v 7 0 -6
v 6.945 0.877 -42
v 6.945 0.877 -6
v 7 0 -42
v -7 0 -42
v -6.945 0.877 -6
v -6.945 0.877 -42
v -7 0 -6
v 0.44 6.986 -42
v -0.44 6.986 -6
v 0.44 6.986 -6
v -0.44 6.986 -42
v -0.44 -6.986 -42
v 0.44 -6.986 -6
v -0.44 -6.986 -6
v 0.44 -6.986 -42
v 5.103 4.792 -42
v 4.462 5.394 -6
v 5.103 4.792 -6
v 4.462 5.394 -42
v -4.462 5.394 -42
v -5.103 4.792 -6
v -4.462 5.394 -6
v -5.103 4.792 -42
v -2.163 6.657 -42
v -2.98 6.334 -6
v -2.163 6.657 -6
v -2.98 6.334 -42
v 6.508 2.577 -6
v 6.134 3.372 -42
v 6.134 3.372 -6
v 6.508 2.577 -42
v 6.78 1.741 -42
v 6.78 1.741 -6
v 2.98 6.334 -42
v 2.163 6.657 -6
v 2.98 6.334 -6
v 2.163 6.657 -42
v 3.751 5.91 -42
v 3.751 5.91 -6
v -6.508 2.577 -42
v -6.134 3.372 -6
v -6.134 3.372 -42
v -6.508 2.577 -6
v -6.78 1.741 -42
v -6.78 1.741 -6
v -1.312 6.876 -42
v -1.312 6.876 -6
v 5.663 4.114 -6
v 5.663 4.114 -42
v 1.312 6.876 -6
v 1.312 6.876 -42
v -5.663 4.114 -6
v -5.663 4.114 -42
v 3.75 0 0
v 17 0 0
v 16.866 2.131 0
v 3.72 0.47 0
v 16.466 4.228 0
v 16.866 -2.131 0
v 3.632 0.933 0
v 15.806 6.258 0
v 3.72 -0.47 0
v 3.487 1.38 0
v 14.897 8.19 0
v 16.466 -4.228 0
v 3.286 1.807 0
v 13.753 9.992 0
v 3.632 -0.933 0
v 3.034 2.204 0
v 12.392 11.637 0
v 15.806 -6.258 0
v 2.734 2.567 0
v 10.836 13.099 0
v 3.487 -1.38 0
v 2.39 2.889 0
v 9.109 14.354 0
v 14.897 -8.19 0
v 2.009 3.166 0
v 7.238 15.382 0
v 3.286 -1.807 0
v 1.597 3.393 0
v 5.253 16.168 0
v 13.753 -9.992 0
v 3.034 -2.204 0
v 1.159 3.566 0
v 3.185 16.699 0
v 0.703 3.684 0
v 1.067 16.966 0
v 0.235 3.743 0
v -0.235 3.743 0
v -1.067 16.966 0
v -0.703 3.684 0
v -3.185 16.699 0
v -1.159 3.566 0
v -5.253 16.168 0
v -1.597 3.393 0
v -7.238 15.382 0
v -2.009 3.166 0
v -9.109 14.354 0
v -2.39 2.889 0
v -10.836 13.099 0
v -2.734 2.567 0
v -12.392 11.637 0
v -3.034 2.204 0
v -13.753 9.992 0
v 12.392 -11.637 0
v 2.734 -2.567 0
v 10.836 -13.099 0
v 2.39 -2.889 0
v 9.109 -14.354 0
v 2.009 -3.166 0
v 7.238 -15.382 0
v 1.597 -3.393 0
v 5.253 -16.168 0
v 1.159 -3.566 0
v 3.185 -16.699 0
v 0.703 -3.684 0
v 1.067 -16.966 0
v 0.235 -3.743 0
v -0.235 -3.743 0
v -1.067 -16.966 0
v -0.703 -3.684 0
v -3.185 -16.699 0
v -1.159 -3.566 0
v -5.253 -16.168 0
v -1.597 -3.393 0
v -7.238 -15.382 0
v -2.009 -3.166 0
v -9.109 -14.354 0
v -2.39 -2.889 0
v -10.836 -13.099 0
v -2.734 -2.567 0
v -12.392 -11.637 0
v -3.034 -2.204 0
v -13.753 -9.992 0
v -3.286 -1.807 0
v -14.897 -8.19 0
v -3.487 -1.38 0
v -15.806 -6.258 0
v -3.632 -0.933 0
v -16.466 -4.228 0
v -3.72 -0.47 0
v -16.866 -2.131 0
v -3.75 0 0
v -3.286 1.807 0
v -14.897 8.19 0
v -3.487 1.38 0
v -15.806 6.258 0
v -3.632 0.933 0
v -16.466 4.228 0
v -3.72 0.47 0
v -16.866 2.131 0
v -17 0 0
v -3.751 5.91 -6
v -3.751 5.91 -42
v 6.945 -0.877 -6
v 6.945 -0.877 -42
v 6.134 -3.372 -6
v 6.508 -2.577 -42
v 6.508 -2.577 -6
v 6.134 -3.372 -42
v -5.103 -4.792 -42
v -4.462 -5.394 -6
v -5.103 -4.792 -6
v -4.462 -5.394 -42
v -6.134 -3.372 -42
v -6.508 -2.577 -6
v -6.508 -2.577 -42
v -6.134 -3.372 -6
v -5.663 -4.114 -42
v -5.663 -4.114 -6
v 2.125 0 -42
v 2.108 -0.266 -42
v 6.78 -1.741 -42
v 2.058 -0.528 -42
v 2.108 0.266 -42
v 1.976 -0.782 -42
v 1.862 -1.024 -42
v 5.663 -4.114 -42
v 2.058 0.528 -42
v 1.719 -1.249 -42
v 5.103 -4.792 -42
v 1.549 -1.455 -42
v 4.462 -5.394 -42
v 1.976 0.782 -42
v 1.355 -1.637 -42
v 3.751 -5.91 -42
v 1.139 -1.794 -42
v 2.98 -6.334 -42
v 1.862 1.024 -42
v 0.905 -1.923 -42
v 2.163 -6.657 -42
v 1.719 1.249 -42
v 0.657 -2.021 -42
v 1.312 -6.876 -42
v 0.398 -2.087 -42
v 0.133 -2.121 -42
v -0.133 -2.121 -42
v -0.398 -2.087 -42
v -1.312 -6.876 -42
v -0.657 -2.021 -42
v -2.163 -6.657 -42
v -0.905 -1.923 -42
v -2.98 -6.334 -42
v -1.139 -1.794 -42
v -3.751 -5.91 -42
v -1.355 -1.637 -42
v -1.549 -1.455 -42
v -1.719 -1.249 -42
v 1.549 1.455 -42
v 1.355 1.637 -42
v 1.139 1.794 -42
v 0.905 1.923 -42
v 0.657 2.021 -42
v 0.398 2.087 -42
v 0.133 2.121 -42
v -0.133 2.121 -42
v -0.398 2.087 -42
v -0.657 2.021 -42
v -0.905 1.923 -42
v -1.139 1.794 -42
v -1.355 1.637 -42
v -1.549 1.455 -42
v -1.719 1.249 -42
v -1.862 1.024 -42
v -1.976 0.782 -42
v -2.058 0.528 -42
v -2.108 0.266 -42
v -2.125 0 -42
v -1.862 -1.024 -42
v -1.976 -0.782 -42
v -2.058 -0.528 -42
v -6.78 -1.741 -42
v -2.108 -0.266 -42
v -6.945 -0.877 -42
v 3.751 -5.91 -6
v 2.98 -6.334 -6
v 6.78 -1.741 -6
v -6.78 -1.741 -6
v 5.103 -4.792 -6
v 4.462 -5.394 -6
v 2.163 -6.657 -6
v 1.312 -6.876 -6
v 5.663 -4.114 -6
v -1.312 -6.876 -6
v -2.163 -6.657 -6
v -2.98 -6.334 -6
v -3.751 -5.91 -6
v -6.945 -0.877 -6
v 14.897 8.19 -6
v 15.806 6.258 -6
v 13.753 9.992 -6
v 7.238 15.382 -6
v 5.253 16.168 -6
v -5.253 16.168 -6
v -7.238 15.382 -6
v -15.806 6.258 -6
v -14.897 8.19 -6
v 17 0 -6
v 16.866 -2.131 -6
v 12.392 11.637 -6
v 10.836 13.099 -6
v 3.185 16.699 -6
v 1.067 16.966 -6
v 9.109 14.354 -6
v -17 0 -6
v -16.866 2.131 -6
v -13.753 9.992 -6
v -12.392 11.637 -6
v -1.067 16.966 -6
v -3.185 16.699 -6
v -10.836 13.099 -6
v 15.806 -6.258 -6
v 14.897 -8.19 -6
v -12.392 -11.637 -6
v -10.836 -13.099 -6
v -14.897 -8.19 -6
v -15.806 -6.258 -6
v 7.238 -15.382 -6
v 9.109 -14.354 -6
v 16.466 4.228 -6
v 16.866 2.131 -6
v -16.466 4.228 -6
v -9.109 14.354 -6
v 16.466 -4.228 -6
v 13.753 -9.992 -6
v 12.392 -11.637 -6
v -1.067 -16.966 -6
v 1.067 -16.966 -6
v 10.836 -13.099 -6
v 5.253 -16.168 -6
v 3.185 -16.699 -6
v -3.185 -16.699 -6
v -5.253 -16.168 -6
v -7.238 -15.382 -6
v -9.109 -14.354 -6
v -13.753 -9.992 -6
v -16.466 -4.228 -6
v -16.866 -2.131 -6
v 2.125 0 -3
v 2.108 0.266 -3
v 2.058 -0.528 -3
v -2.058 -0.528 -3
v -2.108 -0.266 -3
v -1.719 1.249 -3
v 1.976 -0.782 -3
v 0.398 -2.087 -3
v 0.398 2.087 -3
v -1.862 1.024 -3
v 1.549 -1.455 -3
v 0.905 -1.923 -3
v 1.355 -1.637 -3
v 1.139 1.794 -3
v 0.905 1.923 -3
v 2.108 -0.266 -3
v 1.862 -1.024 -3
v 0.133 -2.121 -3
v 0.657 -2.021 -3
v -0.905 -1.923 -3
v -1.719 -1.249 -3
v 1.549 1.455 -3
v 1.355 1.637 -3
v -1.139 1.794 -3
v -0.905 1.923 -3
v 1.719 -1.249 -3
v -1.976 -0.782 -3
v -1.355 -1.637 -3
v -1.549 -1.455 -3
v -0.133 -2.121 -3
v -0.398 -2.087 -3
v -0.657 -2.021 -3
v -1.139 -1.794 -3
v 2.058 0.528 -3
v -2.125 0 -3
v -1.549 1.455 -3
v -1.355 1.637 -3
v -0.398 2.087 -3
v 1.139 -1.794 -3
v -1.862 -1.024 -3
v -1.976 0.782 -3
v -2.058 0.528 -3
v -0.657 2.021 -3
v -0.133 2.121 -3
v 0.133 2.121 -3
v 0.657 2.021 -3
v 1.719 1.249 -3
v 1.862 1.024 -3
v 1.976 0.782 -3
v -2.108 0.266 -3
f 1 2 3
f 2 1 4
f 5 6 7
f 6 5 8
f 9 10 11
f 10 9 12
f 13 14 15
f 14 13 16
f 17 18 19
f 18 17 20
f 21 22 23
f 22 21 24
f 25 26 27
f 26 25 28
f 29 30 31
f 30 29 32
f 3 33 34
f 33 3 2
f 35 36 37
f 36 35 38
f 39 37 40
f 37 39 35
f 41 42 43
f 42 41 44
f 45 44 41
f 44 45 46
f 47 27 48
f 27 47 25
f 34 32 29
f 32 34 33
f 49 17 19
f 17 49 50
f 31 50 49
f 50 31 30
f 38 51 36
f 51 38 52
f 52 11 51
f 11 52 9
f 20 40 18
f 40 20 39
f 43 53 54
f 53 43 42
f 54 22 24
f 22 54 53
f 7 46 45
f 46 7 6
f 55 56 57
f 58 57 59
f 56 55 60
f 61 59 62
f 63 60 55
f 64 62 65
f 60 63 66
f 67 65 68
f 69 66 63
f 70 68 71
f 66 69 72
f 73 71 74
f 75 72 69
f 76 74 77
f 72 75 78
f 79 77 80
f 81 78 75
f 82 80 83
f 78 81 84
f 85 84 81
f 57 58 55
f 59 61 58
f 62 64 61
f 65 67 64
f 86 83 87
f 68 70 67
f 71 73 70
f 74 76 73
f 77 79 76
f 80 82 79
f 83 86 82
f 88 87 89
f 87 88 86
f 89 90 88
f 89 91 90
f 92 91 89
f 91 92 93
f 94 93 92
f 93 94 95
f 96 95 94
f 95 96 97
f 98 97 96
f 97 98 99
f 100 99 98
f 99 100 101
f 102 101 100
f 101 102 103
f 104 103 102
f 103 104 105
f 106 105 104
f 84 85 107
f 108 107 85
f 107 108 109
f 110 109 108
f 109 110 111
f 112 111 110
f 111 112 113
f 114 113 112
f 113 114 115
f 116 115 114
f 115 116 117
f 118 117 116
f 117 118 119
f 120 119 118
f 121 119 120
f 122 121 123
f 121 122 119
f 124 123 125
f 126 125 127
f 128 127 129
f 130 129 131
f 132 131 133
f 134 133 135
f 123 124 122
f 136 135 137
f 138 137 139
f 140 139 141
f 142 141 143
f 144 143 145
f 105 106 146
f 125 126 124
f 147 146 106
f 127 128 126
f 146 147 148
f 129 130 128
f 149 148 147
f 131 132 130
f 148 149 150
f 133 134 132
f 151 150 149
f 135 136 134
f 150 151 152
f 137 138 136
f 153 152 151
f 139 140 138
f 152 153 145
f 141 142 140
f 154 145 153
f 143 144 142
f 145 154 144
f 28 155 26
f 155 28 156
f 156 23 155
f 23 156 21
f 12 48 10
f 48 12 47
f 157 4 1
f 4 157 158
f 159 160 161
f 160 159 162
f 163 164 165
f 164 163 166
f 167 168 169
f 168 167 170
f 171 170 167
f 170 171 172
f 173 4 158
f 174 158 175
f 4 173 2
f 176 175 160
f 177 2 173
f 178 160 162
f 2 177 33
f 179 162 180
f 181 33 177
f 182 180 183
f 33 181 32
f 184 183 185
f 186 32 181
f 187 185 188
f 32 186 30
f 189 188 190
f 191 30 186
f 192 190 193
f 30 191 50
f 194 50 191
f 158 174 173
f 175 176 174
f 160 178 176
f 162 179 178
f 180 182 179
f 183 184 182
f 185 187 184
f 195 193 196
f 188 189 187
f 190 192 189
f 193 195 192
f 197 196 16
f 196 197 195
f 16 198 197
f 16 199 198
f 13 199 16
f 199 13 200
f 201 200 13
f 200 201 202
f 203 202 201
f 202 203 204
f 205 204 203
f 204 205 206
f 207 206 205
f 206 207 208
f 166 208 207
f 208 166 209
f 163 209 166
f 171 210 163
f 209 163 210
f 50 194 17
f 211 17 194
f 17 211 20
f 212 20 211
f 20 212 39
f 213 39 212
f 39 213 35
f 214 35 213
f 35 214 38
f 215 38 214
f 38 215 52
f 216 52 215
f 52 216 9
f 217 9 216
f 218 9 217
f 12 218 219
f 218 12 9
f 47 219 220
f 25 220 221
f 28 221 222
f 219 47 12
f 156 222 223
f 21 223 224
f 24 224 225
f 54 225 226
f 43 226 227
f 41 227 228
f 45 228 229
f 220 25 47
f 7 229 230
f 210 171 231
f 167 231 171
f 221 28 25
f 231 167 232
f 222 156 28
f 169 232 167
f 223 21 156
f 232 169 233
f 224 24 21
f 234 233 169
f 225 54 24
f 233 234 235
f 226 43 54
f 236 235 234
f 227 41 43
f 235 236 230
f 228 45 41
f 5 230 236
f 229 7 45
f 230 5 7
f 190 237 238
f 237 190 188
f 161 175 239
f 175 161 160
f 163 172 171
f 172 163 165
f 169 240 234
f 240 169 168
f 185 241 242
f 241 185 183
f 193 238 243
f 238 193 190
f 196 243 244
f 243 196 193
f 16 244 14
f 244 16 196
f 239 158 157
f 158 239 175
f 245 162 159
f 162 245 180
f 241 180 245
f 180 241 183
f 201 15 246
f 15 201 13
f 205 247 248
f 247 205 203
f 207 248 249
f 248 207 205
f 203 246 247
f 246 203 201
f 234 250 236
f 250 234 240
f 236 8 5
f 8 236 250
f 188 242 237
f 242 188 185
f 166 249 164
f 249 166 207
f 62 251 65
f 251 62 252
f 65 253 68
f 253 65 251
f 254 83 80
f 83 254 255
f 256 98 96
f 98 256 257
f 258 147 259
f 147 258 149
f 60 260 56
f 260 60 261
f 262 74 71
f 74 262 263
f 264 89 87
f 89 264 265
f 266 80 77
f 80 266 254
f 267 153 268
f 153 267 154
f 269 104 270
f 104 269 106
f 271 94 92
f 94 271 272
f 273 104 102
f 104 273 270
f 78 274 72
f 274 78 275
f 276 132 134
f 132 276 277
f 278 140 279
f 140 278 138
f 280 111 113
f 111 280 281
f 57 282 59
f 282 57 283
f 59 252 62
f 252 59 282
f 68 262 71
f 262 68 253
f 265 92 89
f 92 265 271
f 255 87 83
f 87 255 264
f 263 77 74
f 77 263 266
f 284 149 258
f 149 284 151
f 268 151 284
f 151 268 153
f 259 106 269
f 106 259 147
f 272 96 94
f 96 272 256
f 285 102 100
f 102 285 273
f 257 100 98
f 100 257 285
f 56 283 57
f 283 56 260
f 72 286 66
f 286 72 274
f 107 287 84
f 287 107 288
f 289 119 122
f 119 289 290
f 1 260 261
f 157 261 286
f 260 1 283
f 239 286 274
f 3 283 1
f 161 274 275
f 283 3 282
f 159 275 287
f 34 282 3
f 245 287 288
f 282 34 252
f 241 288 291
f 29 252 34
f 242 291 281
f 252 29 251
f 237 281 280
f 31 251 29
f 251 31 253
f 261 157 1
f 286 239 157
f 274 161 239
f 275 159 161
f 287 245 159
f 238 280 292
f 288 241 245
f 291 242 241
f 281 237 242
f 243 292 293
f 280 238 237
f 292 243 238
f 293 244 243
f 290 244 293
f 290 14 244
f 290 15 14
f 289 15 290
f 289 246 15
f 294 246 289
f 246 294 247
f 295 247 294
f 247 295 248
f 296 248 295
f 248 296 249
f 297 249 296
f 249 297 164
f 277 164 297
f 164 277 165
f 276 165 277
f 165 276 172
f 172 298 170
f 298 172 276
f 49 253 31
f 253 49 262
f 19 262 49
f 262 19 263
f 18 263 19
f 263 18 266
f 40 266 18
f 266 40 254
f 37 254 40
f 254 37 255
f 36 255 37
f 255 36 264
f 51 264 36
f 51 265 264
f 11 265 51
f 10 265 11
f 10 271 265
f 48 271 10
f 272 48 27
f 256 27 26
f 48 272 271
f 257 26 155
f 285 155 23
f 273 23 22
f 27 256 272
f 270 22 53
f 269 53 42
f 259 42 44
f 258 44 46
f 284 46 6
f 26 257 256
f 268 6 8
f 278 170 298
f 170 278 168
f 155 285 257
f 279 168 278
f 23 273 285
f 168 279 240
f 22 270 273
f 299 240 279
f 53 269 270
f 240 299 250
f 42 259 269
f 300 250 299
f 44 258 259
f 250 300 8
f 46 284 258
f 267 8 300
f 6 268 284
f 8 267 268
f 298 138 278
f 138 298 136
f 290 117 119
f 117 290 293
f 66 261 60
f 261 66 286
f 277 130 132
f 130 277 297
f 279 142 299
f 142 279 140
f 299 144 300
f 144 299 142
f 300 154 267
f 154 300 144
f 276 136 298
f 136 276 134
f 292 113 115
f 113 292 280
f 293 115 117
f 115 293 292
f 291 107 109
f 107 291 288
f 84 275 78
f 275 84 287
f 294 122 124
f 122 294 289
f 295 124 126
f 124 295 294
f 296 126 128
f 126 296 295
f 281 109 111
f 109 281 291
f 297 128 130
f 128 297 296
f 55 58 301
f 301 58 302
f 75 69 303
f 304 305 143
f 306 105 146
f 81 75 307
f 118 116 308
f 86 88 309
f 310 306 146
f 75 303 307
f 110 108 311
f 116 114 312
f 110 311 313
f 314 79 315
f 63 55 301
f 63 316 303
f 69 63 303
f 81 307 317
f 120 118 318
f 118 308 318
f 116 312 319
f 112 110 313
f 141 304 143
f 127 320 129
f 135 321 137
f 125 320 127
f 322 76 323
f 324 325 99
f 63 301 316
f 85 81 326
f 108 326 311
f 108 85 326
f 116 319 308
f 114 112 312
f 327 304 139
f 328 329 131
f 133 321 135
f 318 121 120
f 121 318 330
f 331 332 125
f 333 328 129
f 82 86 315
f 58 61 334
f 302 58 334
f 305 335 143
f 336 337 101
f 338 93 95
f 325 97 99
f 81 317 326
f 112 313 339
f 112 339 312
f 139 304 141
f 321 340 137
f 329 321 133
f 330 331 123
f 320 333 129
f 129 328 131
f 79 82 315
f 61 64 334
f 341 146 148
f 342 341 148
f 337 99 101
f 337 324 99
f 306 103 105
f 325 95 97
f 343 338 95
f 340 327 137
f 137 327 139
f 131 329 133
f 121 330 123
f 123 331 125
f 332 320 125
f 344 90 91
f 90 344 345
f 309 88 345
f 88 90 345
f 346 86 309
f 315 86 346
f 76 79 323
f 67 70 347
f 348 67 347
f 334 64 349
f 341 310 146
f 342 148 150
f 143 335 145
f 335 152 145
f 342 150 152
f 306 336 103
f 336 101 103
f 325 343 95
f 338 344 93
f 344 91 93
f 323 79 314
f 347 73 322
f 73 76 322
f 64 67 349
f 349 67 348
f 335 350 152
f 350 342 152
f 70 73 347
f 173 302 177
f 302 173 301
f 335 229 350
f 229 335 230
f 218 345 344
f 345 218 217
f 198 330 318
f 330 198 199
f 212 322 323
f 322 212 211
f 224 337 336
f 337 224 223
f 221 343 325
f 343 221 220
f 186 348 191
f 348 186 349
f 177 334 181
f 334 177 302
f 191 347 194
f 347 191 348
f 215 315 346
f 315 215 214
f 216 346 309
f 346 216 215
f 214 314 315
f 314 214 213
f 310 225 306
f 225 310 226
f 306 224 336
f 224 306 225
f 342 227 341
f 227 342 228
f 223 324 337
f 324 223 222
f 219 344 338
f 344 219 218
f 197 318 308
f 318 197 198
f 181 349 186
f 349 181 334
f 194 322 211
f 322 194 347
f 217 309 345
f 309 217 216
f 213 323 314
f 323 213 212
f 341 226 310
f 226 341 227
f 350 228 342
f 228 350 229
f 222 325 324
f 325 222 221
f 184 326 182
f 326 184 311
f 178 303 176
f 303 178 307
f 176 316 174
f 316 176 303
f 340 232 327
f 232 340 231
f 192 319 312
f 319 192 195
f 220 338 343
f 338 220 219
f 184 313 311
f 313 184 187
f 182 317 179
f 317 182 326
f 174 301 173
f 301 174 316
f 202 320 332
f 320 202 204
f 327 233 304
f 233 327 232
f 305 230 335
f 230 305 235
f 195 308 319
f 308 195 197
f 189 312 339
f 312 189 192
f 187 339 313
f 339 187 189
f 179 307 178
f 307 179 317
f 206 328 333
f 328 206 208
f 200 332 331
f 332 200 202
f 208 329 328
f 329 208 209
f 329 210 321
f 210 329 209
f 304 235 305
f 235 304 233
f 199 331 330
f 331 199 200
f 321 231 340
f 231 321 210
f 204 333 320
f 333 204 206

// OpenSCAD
$fn = 50;


difference() {
	union() {
		translate(v = [0, 0, -42.0000000000]) {
			cylinder(h = 42, r = 7.0000000000);
		}
		translate(v = [0, 0, -6.0000000000]) {
			cylinder(h = 6, r = 17.0000000000);
		}
	}
	union() {
		translate(v = [0, 0, 0]) {
			rotate(a = [0, 0, 0]) {
				difference() {
					union() {
						#translate(v = [0, 0, -42.0000000000]) {
							cylinder(h = 42, r = 2.0000000000);
						}
						#translate(v = [0, 0, -3]) {
							cylinder(h = 3, r = 7.0000000000, r1 = 2.1250000000, r2 = 3.7500000000);
						}
						#translate(v = [0, 0, -42.0000000000]) {
							cylinder(h = 42, r = 2.1250000000);
						}
						#translate(v = [0, 0, -42.0000000000]) {
							cylinder(h = 42, r = 2.0000000000);
						}
					}
					union();
				}
			}
		}
	}
}
